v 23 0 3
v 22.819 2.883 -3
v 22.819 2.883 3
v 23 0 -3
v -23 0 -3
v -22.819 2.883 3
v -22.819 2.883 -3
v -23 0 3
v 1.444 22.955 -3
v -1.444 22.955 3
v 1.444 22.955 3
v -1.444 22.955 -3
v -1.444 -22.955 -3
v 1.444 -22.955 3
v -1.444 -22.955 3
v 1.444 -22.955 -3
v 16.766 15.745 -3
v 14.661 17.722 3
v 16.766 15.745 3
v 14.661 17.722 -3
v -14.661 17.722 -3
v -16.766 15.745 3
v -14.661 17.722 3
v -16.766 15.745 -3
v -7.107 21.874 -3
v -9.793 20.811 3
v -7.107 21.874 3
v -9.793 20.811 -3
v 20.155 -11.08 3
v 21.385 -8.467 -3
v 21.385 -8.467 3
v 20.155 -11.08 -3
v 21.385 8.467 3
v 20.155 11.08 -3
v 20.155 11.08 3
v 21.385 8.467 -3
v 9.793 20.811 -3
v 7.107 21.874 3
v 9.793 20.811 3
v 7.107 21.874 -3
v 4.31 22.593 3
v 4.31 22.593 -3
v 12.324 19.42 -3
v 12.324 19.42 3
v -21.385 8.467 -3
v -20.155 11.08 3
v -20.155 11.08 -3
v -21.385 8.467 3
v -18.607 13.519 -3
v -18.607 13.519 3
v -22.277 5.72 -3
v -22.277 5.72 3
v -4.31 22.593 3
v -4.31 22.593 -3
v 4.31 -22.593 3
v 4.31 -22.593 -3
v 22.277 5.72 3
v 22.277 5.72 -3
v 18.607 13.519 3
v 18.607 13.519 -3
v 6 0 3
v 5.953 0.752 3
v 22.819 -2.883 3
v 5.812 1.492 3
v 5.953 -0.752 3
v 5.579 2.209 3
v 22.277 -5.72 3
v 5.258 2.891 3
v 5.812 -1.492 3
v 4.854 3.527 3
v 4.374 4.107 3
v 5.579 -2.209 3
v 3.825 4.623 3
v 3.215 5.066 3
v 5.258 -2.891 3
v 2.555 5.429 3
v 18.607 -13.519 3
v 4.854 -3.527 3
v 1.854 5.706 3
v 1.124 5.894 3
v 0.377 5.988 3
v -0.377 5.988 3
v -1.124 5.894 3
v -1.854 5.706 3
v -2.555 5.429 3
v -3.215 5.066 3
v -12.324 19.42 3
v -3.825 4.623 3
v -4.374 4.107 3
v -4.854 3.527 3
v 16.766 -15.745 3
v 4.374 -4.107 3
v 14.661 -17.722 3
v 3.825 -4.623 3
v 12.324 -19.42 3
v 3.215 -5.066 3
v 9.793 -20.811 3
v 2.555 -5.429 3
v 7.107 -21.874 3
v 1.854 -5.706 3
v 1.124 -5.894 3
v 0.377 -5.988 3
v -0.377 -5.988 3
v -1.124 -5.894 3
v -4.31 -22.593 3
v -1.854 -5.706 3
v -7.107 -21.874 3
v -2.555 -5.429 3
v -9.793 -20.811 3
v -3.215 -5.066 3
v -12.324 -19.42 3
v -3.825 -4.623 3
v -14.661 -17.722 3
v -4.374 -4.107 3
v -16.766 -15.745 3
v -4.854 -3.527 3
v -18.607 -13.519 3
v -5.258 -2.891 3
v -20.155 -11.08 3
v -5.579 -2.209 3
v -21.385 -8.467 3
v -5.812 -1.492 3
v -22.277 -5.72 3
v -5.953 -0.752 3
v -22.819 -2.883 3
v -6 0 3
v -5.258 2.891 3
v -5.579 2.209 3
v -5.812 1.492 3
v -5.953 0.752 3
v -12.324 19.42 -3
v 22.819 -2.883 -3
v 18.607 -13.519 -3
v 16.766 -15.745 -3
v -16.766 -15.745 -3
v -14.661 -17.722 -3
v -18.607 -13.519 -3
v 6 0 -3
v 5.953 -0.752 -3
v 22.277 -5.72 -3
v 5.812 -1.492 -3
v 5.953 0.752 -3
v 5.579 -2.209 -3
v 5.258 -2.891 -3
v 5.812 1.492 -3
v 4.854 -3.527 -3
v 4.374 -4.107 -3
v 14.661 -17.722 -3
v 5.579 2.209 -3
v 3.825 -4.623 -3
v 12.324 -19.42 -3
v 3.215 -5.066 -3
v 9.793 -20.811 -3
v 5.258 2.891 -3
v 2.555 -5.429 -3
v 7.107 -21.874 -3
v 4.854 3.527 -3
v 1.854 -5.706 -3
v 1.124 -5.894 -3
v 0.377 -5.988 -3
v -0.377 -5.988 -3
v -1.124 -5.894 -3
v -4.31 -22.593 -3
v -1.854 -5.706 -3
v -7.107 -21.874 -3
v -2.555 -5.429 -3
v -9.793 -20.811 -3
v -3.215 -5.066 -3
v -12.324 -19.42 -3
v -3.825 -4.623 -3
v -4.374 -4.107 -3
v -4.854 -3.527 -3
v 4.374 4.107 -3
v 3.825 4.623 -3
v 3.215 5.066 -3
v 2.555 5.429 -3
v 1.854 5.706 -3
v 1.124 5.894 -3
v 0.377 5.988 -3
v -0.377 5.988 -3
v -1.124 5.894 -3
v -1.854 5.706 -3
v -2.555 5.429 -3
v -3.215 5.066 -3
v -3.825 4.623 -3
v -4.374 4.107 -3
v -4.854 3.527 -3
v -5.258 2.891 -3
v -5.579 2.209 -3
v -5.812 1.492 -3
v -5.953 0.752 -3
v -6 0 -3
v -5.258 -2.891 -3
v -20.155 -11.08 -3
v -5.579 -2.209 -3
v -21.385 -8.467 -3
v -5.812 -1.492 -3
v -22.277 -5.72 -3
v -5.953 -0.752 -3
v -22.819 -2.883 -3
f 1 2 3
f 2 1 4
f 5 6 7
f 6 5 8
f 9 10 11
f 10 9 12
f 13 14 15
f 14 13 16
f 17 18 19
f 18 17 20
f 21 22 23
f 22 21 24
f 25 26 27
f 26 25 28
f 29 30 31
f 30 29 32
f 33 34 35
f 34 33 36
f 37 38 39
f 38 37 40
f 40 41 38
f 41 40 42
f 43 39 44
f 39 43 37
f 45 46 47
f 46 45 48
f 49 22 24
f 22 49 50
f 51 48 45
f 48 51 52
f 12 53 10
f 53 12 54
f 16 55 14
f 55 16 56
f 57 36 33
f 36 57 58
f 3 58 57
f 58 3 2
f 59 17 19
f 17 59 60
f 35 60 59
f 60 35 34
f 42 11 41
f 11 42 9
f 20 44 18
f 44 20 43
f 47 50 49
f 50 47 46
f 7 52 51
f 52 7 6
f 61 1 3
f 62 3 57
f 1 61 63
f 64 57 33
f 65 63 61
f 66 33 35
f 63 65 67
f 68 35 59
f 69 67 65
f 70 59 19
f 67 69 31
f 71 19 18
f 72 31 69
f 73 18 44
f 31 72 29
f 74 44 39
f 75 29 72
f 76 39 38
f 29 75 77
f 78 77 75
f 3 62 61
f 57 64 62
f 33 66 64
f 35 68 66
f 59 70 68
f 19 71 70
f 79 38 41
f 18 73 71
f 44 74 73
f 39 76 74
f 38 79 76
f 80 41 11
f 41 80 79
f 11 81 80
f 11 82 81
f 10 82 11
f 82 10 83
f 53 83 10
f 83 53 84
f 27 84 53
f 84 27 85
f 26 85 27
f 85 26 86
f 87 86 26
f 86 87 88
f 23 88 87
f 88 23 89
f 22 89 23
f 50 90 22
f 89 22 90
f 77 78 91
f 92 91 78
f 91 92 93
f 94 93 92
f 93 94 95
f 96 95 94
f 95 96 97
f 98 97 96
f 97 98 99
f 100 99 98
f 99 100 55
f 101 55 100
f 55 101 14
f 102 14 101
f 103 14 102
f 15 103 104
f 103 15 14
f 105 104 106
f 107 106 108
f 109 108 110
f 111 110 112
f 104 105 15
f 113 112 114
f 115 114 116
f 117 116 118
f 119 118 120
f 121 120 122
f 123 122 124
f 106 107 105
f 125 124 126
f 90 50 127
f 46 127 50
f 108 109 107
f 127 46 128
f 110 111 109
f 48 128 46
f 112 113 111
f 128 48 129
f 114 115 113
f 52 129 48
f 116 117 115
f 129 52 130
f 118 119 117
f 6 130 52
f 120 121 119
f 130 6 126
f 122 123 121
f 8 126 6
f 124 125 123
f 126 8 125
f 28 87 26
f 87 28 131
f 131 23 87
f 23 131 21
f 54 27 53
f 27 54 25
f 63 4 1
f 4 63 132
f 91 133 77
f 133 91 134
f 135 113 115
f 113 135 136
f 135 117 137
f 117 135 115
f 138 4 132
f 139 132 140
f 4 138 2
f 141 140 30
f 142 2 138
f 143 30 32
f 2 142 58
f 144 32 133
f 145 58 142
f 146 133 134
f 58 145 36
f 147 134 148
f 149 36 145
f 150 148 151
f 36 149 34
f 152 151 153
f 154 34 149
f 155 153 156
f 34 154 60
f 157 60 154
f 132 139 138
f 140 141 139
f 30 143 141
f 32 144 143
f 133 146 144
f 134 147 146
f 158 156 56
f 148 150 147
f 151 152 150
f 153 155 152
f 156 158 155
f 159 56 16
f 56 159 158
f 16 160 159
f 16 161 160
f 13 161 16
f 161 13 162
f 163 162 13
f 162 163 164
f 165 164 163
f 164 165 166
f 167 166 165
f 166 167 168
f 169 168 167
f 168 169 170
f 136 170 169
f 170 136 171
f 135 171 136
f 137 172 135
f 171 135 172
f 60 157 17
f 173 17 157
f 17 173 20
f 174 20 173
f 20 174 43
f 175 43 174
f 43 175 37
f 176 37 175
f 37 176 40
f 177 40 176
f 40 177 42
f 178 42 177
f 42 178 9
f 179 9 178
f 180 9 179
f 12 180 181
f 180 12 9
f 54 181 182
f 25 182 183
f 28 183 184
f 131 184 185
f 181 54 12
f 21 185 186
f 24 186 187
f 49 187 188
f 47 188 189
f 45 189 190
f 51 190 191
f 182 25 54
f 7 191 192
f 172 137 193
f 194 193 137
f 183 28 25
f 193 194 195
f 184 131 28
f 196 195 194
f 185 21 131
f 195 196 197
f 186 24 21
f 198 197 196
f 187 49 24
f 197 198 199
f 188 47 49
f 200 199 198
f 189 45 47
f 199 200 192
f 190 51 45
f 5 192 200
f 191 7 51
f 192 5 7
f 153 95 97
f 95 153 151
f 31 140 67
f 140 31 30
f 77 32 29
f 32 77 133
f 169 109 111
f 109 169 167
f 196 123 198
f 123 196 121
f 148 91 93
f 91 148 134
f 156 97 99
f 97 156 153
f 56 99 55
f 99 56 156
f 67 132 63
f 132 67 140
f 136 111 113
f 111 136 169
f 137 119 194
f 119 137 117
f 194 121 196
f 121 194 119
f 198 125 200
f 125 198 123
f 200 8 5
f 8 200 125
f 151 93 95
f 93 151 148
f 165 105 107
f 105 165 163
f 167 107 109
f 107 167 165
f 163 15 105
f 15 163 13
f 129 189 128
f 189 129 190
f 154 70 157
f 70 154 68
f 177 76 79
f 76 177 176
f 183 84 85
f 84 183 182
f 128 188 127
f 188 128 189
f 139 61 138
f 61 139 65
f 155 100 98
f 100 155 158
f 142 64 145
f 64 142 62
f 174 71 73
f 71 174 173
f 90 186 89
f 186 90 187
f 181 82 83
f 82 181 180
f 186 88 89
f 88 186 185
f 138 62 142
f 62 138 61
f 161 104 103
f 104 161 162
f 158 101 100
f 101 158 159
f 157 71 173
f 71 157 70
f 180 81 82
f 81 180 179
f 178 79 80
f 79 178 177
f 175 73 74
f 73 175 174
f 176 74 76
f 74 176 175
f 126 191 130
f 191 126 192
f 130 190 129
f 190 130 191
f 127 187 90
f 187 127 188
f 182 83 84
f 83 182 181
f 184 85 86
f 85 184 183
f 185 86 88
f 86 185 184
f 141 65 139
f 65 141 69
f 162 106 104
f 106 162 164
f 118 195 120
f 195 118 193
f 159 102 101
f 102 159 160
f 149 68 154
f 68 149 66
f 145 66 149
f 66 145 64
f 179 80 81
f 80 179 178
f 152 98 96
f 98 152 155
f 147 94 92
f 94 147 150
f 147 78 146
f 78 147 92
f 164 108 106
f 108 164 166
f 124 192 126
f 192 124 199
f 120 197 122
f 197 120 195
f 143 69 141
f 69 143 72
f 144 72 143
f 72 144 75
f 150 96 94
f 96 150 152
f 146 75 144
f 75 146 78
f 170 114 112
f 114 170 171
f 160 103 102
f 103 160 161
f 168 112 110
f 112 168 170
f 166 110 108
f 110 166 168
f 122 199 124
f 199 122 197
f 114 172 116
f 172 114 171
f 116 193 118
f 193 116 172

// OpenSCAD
$fn = 50;


difference() {
	union() {
		translate(v = [0, 0, -3.0000000000]) {
			cylinder(h = 6, r = 23.0000000000);
		}
	}
	union() {
		translate(v = [0, 0, -100.0000000000]) {
			cylinder(h = 200, r = 6);
		}
	}
}
